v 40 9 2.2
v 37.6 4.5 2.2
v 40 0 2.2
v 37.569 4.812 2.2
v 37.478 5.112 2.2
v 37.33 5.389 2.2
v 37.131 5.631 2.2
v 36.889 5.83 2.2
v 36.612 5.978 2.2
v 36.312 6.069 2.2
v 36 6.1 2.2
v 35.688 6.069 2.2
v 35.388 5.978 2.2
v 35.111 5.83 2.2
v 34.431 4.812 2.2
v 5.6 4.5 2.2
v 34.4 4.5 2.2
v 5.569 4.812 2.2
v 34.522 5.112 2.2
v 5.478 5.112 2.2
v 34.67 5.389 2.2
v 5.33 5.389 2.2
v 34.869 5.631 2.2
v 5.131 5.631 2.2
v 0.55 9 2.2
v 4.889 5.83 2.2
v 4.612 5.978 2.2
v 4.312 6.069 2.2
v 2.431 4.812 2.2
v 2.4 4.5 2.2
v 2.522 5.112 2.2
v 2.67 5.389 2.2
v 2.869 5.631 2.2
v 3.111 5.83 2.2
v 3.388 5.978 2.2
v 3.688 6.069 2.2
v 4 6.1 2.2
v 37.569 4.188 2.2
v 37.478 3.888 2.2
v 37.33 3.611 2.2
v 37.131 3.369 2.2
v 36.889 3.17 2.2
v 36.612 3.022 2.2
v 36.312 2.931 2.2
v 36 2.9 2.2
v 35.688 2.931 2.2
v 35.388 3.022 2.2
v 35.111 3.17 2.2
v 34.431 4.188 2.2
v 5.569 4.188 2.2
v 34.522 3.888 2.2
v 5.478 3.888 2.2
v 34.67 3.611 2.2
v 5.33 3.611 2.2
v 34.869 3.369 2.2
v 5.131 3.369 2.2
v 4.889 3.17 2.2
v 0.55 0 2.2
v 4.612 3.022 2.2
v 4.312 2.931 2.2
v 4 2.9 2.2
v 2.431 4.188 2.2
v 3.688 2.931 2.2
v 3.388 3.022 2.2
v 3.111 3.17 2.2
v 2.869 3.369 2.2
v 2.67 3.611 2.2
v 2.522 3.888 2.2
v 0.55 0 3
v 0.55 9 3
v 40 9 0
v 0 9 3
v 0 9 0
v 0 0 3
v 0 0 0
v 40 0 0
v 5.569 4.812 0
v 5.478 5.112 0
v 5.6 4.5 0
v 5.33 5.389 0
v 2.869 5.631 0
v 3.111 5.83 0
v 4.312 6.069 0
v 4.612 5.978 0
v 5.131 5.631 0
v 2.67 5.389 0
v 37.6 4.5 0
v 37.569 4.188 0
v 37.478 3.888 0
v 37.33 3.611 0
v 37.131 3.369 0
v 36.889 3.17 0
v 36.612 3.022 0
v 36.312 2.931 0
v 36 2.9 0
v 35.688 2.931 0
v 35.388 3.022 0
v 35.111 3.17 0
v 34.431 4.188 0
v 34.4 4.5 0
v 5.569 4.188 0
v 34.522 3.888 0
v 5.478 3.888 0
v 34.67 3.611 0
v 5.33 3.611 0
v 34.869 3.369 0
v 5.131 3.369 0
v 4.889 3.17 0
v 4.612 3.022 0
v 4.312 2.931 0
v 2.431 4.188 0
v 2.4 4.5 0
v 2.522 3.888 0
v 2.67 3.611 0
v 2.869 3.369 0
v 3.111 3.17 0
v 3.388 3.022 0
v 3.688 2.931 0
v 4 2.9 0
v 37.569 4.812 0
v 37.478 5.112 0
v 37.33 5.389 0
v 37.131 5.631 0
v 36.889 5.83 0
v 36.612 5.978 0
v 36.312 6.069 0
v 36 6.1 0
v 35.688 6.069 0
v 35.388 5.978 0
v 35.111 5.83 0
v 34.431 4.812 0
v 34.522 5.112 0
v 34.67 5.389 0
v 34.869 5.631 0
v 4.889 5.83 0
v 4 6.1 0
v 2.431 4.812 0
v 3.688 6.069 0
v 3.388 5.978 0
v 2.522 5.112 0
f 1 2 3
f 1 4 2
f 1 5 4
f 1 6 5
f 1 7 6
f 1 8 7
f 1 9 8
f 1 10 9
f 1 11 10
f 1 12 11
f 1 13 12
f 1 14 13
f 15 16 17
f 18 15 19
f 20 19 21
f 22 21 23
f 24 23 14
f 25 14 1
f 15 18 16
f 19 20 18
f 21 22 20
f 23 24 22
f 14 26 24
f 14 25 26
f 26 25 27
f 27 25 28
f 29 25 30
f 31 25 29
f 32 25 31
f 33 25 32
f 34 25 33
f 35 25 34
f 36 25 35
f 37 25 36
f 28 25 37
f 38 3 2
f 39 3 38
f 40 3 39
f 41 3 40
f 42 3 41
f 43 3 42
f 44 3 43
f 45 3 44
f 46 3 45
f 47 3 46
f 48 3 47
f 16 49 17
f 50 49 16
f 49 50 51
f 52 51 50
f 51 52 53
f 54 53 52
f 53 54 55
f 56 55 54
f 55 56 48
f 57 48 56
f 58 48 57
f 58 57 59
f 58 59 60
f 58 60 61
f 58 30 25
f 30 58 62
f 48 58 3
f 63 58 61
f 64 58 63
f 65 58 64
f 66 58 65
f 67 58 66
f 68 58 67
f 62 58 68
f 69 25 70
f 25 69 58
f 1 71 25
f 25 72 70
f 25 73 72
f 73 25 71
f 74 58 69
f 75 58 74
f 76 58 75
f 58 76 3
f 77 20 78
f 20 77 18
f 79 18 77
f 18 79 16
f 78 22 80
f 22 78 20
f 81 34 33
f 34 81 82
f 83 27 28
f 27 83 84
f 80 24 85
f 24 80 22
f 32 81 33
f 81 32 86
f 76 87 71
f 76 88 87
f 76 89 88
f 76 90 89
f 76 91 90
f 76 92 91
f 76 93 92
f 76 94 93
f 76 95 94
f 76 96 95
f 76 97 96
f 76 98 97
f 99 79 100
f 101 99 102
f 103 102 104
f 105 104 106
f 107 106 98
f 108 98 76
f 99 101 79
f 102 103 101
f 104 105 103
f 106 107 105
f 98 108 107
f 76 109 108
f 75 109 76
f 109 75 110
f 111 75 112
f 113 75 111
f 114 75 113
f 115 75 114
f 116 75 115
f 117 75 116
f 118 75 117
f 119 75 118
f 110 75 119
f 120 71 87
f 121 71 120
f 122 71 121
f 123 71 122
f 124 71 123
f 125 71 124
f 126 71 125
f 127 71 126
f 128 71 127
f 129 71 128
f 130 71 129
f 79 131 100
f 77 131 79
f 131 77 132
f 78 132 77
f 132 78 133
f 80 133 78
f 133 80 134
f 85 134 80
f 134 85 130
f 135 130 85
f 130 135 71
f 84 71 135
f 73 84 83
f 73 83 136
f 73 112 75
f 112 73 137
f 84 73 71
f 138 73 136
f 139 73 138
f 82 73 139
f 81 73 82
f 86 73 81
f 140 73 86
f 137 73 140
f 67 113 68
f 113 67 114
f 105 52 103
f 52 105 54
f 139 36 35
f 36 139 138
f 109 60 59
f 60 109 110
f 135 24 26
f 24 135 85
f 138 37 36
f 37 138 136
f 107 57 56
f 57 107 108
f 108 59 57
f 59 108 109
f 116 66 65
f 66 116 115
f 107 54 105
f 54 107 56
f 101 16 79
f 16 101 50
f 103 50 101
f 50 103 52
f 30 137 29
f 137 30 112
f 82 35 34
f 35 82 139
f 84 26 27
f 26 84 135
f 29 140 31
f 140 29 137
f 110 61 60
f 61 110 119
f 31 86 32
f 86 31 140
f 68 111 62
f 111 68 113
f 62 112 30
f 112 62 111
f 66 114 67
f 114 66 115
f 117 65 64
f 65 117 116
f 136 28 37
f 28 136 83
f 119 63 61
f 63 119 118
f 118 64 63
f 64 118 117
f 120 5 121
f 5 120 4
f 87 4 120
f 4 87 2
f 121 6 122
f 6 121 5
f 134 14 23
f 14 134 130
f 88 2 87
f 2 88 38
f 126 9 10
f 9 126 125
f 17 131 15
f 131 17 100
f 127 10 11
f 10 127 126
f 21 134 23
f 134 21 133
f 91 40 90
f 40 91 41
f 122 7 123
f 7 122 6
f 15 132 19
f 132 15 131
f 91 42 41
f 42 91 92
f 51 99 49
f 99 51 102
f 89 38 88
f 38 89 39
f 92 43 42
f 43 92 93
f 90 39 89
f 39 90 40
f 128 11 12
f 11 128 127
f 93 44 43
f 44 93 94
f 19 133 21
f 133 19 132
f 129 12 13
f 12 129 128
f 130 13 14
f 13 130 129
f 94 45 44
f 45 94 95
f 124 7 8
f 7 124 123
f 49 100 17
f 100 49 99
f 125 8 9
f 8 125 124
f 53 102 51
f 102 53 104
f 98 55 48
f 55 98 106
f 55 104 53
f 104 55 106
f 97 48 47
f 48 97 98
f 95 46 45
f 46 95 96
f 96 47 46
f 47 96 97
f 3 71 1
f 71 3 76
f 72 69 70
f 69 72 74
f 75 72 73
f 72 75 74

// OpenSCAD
model_quality = 100;
$fn = model_quality;

// GT2 Belt Clamp Parameters
clamp_width = 9;    // Width of the clamp // TODO: Change
clamp_length = 40;  // Length of the clamp
clamp_height = 3;   // Height/thickness of the clamp // TODO: May need to be thicker

// GT2 Belt tooth parameters
tooth_spacing = 1.10; // 1.40;  // Space between teeth
tooth_width = tooth_spacing; // 0.85;   // Width of each tooth
tooth_depth = 0.9; // 0.65   // Depth of the teeth
num_teeth = floor(clamp_length / tooth_spacing);  // Calculate number of teeth

// Screw hole parameters
hole_diameter = 3.2;  // M3 screw holes
hole_distance = 32;   // Distance between screw holes
hole_margin = (clamp_length - hole_distance) / 2;

module gt2_belt_clamp() {
  difference() {
    // Main body
    cube([clamp_length, clamp_width, clamp_height]);

    // Create teeth pattern
    translate([tooth_spacing/2, 0, (clamp_height - tooth_depth) + 0.1 ])
    for(i = [0:num_teeth-1]) {
      translate([i * tooth_spacing, 0, 0])
      cube([tooth_width, clamp_width, tooth_depth]);
    }

    // Screw holes
    translate([hole_margin, clamp_width/2, 0]) {
      cylinder(h=clamp_height, d=hole_diameter, $fn=32);
      translate([hole_distance, 0, 0])
      cylinder(h=clamp_height, d=hole_diameter, $fn=32);
    }
  }
}

// Render the clamp
gt2_belt_clamp();
